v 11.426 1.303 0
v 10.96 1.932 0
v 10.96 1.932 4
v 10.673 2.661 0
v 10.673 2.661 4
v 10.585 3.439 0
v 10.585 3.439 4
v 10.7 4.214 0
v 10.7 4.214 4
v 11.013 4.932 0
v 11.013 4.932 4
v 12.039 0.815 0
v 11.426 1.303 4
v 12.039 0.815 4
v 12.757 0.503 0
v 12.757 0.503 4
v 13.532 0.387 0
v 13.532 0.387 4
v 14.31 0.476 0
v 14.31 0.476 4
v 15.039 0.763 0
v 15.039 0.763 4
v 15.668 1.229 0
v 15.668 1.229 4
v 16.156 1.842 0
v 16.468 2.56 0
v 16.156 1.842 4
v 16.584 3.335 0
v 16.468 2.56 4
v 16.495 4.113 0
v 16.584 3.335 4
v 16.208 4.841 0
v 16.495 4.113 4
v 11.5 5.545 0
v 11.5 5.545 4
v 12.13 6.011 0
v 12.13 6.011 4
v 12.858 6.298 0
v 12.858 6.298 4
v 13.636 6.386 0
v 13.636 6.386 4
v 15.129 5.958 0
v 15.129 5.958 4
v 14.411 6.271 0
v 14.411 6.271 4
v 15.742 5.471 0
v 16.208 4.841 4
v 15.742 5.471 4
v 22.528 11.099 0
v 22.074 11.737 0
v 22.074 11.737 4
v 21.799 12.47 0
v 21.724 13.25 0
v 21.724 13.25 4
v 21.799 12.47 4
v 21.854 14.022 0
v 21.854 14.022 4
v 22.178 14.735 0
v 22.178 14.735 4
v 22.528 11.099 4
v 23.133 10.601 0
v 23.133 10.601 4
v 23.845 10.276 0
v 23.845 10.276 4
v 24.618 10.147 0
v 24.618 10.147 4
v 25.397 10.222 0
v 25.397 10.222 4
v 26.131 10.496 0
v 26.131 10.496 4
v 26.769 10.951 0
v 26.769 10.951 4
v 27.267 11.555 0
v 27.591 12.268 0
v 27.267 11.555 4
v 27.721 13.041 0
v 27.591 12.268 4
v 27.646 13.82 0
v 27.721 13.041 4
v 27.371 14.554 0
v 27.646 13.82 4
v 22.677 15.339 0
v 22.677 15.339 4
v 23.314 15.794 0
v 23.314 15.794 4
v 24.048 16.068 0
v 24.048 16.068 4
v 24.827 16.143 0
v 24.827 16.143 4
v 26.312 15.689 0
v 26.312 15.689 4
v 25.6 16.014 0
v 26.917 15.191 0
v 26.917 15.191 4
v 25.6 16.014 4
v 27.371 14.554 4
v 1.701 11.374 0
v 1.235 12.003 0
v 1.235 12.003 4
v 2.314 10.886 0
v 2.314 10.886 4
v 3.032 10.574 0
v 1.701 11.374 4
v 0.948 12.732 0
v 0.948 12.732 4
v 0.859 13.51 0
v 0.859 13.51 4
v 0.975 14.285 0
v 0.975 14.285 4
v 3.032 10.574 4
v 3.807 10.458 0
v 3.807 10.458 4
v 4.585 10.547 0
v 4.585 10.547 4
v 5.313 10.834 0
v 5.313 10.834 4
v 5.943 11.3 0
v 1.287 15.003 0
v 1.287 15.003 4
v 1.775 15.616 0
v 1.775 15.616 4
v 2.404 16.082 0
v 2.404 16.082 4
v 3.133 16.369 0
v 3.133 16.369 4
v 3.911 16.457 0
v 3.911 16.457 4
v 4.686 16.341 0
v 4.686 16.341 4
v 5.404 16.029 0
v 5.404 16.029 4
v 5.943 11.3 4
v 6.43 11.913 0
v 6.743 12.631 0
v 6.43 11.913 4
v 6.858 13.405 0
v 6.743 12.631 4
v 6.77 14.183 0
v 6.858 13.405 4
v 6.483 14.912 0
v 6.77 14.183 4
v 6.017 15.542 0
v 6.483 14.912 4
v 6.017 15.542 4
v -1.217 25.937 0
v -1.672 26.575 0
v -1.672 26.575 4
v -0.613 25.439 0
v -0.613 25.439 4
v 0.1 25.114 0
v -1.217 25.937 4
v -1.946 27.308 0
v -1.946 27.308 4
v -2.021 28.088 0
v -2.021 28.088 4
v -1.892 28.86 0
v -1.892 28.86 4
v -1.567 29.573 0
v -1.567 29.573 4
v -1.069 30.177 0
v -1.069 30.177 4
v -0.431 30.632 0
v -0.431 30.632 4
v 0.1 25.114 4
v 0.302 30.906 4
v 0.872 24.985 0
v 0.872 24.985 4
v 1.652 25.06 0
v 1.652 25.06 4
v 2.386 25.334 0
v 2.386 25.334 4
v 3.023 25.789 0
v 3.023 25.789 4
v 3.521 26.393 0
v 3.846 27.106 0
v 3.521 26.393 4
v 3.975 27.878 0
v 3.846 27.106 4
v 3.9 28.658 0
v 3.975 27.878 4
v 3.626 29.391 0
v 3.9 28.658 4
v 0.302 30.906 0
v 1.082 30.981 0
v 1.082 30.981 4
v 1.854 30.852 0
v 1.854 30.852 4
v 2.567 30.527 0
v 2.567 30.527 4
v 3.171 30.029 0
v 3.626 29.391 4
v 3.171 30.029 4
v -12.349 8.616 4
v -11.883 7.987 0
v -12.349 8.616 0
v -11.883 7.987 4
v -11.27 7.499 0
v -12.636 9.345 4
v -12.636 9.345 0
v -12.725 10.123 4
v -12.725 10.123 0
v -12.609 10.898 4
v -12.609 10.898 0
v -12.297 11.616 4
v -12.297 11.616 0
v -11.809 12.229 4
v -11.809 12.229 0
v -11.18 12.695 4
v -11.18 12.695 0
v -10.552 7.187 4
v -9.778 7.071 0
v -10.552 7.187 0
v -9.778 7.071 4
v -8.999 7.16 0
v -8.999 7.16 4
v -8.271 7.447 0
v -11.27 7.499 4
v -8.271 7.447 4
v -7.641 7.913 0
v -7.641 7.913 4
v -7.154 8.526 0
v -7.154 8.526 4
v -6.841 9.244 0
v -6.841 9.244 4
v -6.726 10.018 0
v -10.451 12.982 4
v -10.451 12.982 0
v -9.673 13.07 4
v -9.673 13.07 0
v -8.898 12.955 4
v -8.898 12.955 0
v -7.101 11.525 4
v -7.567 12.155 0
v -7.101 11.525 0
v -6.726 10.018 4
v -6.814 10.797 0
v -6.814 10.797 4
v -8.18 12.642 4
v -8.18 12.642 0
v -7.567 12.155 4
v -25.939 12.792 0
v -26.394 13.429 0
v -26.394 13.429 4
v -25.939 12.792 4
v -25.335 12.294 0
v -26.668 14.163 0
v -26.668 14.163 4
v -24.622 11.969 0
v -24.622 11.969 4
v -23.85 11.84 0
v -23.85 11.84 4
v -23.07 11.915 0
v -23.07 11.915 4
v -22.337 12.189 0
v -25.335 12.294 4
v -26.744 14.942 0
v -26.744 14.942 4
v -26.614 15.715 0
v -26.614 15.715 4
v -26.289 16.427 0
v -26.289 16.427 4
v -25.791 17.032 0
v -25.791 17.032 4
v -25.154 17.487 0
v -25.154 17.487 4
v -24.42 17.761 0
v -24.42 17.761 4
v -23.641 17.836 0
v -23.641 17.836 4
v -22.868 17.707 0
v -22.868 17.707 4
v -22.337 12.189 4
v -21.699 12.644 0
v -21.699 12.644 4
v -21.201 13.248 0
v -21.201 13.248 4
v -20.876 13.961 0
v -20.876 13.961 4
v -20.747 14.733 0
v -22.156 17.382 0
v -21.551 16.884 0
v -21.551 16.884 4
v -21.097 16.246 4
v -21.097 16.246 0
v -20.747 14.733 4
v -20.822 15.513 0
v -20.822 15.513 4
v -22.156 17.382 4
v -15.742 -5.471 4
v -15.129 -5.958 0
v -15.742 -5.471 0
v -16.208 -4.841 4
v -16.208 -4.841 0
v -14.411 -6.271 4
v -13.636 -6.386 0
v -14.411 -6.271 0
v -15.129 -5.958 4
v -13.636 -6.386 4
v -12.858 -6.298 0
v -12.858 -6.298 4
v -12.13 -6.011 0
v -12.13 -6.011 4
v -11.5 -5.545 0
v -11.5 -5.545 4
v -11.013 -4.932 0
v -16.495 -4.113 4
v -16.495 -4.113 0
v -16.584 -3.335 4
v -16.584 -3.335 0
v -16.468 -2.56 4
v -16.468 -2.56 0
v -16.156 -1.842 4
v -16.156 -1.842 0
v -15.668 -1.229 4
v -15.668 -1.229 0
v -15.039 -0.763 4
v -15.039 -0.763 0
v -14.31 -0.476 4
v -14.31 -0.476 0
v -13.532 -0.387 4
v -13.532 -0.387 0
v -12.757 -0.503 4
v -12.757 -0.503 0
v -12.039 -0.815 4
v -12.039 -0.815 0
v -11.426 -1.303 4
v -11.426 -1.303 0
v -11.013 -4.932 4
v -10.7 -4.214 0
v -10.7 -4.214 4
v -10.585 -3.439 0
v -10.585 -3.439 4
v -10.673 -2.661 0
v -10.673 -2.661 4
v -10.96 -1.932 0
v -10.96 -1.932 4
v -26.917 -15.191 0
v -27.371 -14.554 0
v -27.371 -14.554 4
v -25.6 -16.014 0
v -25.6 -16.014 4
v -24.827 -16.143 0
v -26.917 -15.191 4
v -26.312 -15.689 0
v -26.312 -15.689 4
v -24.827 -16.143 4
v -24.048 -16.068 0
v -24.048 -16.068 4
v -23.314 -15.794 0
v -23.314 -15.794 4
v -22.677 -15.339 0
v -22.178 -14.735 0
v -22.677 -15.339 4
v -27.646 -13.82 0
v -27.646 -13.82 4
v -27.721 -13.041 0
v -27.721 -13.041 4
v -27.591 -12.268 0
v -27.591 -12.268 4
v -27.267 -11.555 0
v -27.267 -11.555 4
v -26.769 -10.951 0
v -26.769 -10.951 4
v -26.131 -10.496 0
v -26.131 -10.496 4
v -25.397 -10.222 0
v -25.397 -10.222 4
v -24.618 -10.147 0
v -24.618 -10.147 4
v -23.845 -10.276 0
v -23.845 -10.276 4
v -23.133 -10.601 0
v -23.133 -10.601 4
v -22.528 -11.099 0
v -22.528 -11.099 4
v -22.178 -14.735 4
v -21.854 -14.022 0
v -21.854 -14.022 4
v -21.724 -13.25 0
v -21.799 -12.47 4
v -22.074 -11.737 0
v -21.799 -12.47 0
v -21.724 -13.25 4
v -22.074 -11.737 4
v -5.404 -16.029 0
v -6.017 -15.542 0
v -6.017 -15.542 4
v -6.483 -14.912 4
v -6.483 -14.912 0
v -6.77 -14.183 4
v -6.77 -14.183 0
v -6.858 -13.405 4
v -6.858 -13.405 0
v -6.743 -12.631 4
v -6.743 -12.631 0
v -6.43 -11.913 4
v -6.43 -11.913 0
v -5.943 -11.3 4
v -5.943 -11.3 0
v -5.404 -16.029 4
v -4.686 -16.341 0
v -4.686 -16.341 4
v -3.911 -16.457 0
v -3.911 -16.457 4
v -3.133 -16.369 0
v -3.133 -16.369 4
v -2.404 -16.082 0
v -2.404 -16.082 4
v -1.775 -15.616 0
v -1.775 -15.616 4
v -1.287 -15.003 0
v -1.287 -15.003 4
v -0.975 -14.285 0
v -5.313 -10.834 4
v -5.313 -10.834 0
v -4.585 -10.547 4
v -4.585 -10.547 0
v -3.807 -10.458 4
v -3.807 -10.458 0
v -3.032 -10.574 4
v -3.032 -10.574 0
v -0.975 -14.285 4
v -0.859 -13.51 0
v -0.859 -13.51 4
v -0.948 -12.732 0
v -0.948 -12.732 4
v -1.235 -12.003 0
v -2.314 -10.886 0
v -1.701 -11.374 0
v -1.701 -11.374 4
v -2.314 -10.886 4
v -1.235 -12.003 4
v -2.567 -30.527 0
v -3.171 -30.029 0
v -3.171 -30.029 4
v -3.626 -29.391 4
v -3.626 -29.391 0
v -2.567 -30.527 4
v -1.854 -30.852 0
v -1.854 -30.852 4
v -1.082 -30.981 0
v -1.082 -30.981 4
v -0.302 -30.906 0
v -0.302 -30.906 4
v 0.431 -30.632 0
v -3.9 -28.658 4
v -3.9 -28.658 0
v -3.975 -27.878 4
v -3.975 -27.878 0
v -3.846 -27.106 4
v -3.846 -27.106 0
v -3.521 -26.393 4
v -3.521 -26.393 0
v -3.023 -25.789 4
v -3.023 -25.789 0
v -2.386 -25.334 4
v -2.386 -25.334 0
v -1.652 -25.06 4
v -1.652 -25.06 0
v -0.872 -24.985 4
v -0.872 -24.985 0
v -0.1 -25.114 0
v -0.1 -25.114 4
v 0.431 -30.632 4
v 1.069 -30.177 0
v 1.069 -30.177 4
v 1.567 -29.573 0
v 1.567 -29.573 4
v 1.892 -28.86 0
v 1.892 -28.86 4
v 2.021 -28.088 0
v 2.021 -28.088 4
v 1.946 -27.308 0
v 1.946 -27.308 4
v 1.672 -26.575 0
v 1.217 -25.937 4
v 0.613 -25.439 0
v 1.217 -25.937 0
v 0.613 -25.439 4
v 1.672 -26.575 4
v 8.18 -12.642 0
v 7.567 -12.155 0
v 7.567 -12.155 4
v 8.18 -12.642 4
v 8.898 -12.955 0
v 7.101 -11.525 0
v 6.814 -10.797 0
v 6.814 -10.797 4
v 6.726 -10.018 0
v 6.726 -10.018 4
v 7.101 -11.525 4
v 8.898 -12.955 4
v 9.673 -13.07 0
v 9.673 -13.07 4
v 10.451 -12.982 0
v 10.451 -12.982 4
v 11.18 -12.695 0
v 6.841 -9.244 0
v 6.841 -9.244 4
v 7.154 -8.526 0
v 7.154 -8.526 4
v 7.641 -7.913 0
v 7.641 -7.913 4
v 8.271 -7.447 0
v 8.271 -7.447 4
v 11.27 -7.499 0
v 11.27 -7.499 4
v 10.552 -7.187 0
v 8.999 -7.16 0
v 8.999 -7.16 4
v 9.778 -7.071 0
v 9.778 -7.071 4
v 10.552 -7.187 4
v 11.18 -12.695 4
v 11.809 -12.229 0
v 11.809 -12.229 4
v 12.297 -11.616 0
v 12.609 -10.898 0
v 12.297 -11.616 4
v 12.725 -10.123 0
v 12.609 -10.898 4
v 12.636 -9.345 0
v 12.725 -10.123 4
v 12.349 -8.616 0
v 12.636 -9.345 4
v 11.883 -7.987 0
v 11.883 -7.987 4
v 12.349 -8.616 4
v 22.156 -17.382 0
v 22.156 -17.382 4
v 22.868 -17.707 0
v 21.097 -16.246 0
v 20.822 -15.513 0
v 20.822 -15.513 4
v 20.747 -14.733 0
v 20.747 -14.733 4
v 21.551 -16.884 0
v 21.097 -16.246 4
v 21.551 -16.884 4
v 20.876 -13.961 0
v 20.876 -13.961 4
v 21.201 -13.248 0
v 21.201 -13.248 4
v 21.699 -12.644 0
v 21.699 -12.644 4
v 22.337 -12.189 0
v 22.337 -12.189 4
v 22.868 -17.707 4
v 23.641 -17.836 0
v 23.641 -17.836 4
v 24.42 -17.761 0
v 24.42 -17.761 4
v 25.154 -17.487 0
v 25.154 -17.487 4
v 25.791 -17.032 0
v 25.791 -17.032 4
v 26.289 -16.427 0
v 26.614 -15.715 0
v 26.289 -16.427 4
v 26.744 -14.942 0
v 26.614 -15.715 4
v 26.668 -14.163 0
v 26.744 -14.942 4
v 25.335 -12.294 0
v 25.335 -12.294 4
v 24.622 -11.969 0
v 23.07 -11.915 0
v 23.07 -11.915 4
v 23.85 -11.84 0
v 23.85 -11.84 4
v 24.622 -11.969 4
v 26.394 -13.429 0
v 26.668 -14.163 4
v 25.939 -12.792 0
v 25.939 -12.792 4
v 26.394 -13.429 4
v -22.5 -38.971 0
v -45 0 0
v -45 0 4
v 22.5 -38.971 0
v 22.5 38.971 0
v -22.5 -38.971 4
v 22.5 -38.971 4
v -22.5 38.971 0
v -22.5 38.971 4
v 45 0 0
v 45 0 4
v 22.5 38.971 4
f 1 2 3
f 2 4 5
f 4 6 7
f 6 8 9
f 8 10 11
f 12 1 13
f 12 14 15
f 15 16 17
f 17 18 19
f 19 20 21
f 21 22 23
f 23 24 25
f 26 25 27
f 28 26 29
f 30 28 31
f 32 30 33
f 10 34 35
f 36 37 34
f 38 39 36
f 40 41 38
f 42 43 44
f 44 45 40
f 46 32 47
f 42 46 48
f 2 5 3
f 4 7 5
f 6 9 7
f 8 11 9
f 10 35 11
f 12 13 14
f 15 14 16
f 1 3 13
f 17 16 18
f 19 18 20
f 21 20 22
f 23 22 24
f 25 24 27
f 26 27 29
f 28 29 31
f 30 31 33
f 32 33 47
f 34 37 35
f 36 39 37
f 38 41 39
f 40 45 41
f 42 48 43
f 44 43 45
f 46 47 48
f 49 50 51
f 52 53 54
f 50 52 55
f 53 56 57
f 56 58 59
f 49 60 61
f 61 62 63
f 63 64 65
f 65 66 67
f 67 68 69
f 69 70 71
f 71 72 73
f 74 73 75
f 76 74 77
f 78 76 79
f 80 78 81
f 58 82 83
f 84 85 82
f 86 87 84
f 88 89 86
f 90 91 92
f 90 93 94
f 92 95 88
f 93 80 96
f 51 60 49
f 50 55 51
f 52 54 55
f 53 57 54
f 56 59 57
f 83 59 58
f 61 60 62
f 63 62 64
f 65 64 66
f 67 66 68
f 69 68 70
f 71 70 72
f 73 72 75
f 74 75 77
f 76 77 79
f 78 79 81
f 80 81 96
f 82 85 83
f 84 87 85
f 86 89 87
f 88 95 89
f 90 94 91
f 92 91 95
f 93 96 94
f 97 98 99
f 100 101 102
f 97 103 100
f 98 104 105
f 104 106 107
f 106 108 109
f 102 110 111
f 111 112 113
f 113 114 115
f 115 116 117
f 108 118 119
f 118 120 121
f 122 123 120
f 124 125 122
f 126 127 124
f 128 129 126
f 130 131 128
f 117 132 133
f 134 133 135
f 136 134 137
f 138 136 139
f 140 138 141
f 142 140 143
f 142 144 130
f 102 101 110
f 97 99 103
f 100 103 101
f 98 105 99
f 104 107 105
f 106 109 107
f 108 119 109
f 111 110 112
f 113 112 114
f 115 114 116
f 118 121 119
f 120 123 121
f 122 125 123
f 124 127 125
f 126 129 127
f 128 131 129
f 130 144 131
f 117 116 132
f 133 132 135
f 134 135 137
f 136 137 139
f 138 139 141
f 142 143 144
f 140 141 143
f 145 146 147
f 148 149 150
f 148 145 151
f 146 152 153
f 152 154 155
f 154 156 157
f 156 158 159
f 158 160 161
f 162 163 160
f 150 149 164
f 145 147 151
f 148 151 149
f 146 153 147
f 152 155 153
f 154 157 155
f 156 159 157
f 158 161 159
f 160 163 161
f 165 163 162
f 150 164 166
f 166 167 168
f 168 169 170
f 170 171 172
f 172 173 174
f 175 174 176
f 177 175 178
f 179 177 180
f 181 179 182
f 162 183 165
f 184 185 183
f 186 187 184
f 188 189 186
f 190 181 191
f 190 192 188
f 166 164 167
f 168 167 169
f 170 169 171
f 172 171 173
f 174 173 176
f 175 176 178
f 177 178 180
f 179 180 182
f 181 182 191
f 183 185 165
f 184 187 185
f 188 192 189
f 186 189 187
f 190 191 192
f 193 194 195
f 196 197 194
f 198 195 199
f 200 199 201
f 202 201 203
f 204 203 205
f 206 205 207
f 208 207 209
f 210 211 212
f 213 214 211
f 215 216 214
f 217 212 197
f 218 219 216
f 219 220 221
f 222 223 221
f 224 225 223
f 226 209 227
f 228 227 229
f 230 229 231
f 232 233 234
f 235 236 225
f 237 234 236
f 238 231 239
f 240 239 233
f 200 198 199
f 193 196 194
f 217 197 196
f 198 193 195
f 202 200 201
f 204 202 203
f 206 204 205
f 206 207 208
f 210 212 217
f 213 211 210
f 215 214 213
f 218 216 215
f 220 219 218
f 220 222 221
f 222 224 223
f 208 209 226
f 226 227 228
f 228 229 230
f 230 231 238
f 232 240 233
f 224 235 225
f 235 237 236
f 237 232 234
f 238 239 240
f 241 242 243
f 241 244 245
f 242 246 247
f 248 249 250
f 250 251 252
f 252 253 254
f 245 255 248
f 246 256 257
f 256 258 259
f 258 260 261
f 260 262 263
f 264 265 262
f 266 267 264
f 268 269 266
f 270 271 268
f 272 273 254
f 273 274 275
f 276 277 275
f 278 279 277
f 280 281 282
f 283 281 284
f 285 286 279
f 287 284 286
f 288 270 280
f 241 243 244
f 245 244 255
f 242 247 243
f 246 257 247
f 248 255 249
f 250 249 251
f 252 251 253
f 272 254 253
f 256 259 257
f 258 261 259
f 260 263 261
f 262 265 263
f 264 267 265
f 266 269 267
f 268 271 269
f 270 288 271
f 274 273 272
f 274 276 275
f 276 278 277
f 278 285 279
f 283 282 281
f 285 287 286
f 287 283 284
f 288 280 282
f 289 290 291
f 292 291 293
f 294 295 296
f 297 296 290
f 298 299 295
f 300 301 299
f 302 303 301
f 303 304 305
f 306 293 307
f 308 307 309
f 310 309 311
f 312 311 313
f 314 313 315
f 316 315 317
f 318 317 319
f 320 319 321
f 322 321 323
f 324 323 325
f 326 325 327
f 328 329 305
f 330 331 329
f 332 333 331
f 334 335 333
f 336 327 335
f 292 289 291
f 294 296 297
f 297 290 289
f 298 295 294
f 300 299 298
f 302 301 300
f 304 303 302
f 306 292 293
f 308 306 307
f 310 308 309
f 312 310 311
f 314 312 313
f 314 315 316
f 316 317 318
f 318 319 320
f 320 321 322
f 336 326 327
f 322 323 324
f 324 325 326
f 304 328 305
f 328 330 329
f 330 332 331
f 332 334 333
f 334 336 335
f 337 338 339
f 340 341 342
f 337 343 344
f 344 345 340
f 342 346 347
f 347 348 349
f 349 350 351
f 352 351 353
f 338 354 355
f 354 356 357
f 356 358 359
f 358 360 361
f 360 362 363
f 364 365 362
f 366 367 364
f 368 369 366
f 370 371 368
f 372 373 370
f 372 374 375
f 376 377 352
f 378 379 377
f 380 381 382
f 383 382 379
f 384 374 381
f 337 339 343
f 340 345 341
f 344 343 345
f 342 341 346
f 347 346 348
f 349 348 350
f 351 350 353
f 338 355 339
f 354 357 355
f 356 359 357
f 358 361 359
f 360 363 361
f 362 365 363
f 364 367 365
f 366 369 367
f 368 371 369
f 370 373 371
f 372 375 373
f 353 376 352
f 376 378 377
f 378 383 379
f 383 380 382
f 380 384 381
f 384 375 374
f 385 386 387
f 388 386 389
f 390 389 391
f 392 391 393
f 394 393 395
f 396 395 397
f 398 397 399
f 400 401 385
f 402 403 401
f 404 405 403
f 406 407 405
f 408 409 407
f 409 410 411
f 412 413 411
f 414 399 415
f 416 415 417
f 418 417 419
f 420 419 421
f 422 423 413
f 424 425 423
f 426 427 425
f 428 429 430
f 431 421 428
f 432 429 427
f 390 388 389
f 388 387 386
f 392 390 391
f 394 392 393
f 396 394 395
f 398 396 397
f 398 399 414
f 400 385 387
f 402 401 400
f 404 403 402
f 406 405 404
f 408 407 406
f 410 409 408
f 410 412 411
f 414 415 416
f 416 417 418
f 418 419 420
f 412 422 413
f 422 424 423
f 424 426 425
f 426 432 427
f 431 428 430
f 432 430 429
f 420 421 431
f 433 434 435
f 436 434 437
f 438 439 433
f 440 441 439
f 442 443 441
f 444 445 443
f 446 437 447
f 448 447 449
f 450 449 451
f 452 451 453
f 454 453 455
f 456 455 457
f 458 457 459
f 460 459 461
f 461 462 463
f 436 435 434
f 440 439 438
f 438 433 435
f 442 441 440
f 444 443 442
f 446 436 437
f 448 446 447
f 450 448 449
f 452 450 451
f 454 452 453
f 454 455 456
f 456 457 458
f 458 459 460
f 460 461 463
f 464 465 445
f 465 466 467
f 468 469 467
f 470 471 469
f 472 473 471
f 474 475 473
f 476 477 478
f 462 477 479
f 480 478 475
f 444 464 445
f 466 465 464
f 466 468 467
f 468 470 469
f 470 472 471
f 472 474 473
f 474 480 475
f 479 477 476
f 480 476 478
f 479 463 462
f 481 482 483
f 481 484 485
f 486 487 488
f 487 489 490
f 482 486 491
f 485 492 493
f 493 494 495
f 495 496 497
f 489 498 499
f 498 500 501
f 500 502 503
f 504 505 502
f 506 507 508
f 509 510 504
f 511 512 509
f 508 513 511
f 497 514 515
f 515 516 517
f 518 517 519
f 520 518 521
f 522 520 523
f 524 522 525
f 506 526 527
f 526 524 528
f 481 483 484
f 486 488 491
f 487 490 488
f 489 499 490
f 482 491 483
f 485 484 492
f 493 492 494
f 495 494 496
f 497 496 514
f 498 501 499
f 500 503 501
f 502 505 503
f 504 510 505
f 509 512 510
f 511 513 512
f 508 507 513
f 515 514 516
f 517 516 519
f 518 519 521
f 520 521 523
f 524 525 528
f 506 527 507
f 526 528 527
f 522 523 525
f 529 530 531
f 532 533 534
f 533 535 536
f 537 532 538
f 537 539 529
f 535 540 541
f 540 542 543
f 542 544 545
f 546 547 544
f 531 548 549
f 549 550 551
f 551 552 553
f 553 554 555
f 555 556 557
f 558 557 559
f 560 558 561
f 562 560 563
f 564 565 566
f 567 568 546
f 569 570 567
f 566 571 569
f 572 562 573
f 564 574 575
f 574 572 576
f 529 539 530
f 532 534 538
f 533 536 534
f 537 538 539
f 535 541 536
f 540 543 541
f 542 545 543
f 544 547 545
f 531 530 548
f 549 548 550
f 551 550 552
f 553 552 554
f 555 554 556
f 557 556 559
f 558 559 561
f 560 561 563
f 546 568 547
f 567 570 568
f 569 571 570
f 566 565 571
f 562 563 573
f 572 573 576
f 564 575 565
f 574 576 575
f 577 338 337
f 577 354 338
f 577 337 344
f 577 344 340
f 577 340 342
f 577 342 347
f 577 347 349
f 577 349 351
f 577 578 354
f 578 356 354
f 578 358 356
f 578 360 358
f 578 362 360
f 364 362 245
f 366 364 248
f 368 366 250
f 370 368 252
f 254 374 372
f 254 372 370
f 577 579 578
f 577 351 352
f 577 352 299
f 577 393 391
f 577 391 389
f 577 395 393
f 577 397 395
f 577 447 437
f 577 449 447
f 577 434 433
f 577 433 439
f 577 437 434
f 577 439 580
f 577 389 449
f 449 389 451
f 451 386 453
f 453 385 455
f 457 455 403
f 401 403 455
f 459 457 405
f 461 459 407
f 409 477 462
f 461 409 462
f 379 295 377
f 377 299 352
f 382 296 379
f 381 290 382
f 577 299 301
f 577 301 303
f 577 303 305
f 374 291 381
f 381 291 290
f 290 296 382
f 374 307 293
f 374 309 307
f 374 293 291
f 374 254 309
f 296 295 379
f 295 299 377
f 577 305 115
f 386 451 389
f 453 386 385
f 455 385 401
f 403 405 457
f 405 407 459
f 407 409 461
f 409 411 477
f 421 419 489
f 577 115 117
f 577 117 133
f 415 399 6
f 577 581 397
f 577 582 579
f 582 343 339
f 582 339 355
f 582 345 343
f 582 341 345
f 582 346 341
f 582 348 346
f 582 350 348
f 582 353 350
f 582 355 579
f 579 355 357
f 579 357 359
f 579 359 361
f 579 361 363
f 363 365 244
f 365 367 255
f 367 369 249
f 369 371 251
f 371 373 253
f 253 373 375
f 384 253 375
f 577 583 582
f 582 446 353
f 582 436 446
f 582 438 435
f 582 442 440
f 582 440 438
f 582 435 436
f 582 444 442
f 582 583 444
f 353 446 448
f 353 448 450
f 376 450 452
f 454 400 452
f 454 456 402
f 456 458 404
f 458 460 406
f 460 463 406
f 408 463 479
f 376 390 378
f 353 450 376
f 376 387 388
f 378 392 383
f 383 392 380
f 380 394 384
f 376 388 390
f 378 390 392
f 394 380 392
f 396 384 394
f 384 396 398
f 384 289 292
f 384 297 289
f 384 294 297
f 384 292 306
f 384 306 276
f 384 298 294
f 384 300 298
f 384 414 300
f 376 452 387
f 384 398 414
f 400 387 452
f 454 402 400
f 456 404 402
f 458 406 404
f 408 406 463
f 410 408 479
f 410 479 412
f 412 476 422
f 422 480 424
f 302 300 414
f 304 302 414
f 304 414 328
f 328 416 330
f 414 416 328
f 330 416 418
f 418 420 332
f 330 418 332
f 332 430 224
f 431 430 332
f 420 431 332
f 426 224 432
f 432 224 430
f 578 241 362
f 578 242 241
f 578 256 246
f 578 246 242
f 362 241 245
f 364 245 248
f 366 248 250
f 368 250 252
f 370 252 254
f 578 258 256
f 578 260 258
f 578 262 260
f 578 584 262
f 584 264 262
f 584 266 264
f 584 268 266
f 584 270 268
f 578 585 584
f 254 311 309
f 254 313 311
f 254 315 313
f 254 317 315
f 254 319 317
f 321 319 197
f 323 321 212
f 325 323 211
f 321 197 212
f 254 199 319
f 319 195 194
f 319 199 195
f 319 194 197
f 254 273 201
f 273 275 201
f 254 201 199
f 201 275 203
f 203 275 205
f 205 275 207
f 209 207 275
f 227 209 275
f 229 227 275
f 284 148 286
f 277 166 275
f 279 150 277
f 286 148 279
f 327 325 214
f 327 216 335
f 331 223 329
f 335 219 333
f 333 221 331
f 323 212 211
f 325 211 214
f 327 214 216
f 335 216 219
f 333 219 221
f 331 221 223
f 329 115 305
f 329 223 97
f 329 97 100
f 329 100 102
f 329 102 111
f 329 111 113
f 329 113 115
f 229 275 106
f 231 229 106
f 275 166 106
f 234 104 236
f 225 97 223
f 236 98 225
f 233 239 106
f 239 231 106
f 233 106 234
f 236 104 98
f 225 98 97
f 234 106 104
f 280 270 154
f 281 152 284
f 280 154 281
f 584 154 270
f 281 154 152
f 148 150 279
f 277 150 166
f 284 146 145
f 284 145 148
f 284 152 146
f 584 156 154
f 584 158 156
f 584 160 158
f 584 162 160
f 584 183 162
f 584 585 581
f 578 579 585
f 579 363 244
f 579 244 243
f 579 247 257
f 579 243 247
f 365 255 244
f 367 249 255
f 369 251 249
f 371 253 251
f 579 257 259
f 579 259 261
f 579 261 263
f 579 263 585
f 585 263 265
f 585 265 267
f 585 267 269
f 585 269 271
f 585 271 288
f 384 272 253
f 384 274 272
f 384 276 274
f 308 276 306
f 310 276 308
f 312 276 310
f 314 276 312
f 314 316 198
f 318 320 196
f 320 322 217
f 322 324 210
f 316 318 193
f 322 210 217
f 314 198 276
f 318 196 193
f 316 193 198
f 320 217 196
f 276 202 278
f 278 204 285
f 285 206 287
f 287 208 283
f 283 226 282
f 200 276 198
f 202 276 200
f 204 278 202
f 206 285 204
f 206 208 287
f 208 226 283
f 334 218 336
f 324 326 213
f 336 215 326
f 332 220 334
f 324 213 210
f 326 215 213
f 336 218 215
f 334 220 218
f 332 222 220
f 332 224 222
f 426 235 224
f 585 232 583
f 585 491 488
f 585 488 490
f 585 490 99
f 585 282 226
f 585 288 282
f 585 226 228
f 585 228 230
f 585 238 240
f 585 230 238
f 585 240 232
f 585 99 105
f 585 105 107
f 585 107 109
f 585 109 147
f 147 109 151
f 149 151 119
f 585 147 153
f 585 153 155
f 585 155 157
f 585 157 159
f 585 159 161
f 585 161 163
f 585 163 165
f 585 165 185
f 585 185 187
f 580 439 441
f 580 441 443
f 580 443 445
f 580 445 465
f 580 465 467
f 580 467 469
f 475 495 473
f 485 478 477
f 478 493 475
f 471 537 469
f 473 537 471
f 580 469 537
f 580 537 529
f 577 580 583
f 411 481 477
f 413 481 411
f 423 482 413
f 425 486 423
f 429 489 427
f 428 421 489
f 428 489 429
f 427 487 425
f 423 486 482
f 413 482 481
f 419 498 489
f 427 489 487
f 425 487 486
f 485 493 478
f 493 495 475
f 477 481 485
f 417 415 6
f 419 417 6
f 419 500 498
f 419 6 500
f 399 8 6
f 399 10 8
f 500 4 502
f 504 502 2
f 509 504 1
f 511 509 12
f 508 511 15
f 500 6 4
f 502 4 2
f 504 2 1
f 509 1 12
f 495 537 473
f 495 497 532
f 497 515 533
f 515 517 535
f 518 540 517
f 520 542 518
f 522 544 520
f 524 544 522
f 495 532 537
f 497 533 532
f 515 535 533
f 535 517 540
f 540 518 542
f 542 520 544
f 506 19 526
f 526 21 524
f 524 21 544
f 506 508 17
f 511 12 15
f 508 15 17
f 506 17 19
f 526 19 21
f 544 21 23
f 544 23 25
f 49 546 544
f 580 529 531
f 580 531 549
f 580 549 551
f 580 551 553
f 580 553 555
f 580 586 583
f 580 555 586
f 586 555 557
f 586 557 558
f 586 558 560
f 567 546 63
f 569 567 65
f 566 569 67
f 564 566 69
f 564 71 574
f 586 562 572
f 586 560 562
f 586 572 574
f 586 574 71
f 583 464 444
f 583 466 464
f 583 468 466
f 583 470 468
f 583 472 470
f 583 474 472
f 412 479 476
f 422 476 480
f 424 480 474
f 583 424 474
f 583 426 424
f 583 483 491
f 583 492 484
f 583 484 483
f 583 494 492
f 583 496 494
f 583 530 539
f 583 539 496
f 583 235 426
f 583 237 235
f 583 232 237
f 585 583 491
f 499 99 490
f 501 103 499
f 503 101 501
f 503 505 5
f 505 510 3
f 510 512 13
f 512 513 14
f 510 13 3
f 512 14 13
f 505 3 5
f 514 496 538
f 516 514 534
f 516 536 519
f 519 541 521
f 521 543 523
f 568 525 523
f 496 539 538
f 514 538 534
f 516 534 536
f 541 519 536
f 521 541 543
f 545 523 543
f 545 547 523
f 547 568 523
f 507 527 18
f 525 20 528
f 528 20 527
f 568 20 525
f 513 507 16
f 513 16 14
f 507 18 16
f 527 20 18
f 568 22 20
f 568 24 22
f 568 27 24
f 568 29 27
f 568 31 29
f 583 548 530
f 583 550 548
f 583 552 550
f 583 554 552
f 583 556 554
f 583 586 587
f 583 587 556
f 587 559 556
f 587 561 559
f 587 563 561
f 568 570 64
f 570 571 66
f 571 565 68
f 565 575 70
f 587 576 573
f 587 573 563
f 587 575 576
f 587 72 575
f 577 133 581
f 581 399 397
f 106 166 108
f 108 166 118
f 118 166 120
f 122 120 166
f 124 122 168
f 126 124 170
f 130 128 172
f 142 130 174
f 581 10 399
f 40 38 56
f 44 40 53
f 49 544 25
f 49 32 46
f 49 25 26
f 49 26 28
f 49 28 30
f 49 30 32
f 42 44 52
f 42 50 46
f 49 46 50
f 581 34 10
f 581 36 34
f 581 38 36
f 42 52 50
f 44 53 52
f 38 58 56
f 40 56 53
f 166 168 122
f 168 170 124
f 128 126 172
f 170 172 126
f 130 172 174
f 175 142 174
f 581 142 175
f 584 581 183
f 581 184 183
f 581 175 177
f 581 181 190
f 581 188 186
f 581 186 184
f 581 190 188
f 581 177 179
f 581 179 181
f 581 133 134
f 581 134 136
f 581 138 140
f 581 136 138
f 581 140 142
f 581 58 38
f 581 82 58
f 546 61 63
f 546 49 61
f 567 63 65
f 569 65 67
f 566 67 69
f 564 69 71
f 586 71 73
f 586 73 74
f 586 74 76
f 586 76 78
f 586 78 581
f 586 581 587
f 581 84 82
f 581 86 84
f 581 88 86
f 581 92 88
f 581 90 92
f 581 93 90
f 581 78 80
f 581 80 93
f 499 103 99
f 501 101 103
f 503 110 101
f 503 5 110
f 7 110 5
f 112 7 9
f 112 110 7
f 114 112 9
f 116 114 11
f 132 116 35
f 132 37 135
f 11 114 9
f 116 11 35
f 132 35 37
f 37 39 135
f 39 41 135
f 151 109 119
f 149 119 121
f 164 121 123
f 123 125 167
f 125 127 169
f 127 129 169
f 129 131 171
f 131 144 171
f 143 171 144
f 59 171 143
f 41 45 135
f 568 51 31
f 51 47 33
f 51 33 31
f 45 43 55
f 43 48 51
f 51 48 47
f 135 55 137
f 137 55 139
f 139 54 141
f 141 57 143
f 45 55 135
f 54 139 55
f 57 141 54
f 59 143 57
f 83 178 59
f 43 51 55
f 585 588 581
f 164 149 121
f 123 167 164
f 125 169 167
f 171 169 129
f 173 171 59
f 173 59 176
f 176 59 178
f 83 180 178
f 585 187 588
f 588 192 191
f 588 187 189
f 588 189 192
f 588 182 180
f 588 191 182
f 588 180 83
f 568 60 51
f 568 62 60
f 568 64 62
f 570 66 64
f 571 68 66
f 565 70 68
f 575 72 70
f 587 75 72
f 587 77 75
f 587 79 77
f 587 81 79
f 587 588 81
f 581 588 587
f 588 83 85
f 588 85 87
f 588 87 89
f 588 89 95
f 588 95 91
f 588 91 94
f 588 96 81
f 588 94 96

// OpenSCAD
// Hexagonal coaster with two rings of holes.
diameter = 90;
height = 4;
hole = 6;

difference() {
    cylinder(d = diameter, h = height, $fn = 6);
    for (a = [0 : 60 : 359], r = [14, 28])
        rotate(a + r) translate([r, 0, -1])
            cylinder(d = hole, h = height + 2, $fn = 24);
}

assert(hole < diameter / 4, "hole too large");
echo(area = 3 * sqrt(3) / 8 * diameter ^ 2);
